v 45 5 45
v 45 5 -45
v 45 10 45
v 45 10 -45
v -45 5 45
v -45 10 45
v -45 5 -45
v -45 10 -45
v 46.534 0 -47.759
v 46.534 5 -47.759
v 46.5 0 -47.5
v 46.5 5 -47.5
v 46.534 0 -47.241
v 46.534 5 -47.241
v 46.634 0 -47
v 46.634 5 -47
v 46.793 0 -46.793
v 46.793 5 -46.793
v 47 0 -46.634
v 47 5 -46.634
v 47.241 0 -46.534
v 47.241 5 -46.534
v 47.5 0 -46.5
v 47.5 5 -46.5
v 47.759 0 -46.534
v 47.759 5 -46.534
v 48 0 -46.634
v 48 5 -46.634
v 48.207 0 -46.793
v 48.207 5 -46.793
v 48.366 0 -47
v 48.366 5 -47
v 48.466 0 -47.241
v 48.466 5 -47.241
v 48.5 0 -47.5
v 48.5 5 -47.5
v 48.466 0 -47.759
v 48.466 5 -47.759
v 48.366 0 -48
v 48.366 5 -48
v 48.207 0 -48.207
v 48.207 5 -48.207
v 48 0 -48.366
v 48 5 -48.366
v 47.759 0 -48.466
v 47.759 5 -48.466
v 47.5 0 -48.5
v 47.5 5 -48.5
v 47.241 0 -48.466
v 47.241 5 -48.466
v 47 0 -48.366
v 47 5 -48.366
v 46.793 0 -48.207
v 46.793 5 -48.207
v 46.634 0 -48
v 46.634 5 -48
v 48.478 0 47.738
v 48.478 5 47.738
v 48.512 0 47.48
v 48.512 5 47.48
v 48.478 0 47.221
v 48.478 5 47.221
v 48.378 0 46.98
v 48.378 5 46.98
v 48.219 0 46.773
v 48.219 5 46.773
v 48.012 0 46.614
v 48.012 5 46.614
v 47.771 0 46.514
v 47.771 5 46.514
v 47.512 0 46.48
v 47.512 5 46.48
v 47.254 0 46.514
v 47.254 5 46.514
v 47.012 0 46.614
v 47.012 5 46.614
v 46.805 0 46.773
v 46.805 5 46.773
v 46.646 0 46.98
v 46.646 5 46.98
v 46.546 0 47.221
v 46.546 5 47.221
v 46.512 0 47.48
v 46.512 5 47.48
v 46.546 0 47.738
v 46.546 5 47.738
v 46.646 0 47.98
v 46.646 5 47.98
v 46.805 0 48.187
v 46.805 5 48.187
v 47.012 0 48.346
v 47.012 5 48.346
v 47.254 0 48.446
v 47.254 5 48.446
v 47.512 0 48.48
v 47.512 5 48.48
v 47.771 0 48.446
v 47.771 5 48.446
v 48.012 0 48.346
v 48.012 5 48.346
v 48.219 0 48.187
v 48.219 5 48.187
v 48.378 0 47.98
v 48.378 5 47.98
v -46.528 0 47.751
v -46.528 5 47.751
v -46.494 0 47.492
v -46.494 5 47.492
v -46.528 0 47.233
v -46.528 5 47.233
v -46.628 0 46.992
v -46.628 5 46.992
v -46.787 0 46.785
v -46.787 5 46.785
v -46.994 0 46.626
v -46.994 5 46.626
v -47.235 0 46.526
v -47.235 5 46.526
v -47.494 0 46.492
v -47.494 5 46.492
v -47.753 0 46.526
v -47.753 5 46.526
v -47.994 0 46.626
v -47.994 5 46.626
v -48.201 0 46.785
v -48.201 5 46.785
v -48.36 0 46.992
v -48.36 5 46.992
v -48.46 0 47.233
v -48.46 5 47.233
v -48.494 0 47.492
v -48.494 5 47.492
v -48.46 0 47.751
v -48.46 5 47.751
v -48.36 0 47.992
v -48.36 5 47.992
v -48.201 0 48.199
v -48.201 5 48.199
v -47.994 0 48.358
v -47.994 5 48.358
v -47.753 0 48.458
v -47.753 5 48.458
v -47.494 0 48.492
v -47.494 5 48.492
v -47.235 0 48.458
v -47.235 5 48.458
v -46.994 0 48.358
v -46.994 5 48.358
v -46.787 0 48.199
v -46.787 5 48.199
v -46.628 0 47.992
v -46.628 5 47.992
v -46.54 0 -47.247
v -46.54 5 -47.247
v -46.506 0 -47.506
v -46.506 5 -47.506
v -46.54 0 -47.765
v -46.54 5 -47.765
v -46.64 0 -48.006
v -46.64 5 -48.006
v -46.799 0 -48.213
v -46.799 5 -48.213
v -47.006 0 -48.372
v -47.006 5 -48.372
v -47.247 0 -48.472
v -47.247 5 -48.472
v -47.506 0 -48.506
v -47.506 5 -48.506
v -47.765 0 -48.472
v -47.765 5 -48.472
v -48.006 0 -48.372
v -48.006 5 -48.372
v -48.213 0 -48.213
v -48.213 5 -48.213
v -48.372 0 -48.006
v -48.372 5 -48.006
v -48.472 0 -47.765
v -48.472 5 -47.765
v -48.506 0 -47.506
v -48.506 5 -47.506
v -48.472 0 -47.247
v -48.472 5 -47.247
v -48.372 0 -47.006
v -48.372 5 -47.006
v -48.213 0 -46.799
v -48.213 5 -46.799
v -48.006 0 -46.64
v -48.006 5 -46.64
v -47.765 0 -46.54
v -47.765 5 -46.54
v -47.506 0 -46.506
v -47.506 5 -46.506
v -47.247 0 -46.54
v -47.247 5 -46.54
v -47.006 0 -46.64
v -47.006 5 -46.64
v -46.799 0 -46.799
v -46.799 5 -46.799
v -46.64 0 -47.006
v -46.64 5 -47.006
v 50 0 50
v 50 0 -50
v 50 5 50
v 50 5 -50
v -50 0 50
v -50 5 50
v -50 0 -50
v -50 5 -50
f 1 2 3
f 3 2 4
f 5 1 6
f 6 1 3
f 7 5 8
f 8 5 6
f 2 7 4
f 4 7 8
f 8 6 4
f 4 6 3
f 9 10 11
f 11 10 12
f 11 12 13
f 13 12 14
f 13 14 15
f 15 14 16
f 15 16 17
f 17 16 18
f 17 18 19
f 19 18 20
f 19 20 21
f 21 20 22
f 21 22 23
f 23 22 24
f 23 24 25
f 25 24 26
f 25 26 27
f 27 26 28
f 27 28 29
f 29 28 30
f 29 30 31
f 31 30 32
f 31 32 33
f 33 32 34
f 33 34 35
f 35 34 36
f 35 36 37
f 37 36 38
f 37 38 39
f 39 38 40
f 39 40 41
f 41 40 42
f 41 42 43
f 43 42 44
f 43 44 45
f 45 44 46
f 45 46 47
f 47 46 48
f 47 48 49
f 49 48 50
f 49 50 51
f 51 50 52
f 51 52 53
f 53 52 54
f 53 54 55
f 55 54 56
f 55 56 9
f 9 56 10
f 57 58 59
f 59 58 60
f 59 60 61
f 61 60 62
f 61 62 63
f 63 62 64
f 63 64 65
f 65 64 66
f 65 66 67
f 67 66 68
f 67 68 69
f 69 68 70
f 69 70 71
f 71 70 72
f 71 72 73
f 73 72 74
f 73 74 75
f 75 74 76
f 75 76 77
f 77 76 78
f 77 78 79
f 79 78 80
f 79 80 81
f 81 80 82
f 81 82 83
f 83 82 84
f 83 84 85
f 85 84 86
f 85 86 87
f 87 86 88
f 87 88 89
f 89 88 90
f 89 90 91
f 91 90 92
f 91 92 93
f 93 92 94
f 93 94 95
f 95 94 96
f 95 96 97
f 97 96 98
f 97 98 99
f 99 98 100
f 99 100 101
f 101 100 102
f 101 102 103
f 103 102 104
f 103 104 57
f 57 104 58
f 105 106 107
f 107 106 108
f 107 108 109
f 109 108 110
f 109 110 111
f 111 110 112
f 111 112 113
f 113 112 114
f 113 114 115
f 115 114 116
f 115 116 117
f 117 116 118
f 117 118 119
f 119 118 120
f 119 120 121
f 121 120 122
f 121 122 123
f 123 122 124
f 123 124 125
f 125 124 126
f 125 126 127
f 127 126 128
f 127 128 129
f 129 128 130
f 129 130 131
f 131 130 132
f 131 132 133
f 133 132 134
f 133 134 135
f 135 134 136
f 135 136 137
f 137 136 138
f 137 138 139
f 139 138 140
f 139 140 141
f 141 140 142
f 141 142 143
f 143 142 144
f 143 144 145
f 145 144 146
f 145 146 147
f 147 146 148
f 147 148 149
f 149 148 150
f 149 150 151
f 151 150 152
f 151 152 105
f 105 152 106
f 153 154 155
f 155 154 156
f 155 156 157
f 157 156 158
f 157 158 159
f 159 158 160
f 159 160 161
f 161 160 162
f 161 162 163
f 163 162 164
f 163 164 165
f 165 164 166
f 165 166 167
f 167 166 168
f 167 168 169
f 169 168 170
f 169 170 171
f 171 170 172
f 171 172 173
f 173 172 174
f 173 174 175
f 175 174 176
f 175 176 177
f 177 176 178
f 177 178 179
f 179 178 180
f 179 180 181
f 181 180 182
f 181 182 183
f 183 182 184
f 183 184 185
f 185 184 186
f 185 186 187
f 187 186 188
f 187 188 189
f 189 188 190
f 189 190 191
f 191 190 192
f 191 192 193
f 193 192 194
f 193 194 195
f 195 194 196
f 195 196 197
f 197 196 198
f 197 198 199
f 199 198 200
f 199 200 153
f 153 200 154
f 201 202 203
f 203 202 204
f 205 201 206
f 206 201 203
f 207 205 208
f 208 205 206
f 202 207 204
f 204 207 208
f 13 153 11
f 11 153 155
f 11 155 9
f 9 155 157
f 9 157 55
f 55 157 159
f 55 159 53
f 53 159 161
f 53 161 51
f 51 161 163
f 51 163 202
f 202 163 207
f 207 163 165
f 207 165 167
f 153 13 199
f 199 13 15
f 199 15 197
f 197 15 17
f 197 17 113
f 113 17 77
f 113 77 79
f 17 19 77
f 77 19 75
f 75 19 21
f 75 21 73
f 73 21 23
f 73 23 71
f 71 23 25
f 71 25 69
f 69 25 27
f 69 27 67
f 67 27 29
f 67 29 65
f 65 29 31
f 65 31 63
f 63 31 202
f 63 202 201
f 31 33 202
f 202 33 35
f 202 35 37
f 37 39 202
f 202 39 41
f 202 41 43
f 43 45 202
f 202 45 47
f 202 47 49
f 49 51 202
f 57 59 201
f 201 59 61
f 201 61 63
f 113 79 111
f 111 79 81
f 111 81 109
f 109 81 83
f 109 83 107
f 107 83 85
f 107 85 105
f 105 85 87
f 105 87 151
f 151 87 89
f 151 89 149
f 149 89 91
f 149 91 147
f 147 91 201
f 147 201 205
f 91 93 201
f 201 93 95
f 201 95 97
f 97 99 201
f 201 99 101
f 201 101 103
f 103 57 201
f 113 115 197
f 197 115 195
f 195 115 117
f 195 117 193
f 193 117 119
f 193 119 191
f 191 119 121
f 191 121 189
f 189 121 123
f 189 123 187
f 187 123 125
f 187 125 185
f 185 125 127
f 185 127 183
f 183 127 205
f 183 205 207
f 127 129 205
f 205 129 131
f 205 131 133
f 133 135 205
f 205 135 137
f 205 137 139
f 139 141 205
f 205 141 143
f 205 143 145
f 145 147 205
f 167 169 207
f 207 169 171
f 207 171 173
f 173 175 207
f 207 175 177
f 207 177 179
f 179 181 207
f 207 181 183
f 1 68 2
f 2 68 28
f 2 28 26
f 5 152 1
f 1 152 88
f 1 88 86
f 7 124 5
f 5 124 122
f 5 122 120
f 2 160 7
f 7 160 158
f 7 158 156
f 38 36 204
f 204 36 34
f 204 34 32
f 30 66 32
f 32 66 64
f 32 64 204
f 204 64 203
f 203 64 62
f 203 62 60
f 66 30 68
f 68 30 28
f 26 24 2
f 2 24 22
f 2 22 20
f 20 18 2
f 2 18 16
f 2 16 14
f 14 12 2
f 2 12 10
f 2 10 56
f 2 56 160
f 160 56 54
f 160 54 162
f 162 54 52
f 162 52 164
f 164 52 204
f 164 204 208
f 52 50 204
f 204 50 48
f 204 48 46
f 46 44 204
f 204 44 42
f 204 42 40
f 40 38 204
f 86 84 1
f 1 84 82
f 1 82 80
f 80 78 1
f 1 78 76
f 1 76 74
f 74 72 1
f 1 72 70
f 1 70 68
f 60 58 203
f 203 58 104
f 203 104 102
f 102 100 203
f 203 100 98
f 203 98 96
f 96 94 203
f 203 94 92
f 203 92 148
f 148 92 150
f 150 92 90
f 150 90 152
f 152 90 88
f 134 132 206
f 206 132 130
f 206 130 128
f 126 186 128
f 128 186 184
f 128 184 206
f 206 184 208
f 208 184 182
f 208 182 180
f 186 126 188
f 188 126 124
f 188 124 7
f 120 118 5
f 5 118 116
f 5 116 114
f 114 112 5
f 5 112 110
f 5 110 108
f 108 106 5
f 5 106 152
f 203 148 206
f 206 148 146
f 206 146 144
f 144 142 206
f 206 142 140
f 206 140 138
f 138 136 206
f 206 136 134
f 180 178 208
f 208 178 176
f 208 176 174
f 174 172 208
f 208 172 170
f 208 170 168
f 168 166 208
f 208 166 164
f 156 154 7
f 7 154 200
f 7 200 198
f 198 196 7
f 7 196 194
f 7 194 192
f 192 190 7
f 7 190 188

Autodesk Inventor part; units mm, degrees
ref_plane "YZ Plane" through (0, 0, 0) normal (1, 0, 0) x (0, 1, 0)
ref_plane "XZ Plane" through (0, 0, 0) normal (0, 1, 0) x (-1, 0, 0)
ref_plane "XY Plane" through (0, 0, 0) normal (0, 0, 1) x (1, 0, 0)
sketch "Sketch1" plane through (0, 0, 0) normal (0, 1, 0) x (-1, 0, 0)
  point P0 (0, 0)
sketch "Sketch2" plane through (0, 0, 0) normal (0, 1, 0) x (-1, 0, 0)
  line L0 (50, -50) -> (-50, -50)
  line L1 (-50, -50) -> (-50, 50)
  line L2 (-50, 50) -> (50, 50)
  line L3 (50, 50) -> (50, -50)
  point P0 (0, 0)
  point P1 (0, 0)
  dimension "d0" = 100
  dimension "d1" = 100
  dimension "d3" = 50
extrude "Extrusion1" add sketch "Sketch2" along normal blind 5
sketch "Sketch3" plane through (0, 5, 0) normal (0, 1, 0) x (1, 0, 0)
  circle A0 centre (-47.5, 47.5) radius 1
  line L0 (-50, 50) -> (-50, -50) projected
  line L1 (50, 50) -> (-50, 50) projected
  line L2 (50, -50) -> (50, 50) projected
  circle A1 centre (47.5, 47.5) radius 1
  line L3 (-50, -50) -> (50, -50) projected
  circle A2 centre (-47.5, -47.5) radius 1
  circle A3 centre (47.5, -47.5) radius 1
  point P0 (0, 0)
  dimension "d6" = 2.5
  dimension "d7" = 2.5
  dimension "d8" = 2
  dimension "d9" = 2.5
  dimension "d10" = 2.5
  dimension "d11" = 2.5
  dimension "d12" = 2.5
  dimension "d13" = 2.5
  dimension "d14" = 2.5
hole "Hole1" at (-47.5062, 5, -47.5057) direction (0, -1, 0) diameter 2 end through all
hole "Hole2" at (-47.4938, 5, 47.4921) direction (0, -1, 0) diameter 2 end through all
hole "Hole3" at (47.5124, 5, 47.4796) direction (0, -1, 0) diameter 2 end through all
hole "Hole4" at (47.5, 5, -47.5) direction (0, -1, 0) diameter 2 end through all
sketch "Sketch4" plane through (0, 5, 0) normal (0, 1, 0) x (1, 0, 0)
  line L0 (-45, 45) -> (45, 45)
  line L1 (45, 45) -> (45, -45)
  line L2 (45, -45) -> (-45, -45)
  line L3 (-45, -45) -> (-45, 45)
  line L4 (50, 50) -> (50, -50) projected
  line L5 (50, 50) -> (-50, 50) projected
  line L6 (-50, 50) -> (-50, -50) projected
  line L7 (-50, -50) -> (50, -50) projected
  point P0 (0, 0)
  dimension "d49" = 5
  dimension "d50" = 5
  dimension "d51" = 5
  dimension "d52" = 5
extrude "Extrusion2" add sketch "Sketch4" along normal blind 5 contours L0 L1 L2 L3
properties part number "cubesat_top"
